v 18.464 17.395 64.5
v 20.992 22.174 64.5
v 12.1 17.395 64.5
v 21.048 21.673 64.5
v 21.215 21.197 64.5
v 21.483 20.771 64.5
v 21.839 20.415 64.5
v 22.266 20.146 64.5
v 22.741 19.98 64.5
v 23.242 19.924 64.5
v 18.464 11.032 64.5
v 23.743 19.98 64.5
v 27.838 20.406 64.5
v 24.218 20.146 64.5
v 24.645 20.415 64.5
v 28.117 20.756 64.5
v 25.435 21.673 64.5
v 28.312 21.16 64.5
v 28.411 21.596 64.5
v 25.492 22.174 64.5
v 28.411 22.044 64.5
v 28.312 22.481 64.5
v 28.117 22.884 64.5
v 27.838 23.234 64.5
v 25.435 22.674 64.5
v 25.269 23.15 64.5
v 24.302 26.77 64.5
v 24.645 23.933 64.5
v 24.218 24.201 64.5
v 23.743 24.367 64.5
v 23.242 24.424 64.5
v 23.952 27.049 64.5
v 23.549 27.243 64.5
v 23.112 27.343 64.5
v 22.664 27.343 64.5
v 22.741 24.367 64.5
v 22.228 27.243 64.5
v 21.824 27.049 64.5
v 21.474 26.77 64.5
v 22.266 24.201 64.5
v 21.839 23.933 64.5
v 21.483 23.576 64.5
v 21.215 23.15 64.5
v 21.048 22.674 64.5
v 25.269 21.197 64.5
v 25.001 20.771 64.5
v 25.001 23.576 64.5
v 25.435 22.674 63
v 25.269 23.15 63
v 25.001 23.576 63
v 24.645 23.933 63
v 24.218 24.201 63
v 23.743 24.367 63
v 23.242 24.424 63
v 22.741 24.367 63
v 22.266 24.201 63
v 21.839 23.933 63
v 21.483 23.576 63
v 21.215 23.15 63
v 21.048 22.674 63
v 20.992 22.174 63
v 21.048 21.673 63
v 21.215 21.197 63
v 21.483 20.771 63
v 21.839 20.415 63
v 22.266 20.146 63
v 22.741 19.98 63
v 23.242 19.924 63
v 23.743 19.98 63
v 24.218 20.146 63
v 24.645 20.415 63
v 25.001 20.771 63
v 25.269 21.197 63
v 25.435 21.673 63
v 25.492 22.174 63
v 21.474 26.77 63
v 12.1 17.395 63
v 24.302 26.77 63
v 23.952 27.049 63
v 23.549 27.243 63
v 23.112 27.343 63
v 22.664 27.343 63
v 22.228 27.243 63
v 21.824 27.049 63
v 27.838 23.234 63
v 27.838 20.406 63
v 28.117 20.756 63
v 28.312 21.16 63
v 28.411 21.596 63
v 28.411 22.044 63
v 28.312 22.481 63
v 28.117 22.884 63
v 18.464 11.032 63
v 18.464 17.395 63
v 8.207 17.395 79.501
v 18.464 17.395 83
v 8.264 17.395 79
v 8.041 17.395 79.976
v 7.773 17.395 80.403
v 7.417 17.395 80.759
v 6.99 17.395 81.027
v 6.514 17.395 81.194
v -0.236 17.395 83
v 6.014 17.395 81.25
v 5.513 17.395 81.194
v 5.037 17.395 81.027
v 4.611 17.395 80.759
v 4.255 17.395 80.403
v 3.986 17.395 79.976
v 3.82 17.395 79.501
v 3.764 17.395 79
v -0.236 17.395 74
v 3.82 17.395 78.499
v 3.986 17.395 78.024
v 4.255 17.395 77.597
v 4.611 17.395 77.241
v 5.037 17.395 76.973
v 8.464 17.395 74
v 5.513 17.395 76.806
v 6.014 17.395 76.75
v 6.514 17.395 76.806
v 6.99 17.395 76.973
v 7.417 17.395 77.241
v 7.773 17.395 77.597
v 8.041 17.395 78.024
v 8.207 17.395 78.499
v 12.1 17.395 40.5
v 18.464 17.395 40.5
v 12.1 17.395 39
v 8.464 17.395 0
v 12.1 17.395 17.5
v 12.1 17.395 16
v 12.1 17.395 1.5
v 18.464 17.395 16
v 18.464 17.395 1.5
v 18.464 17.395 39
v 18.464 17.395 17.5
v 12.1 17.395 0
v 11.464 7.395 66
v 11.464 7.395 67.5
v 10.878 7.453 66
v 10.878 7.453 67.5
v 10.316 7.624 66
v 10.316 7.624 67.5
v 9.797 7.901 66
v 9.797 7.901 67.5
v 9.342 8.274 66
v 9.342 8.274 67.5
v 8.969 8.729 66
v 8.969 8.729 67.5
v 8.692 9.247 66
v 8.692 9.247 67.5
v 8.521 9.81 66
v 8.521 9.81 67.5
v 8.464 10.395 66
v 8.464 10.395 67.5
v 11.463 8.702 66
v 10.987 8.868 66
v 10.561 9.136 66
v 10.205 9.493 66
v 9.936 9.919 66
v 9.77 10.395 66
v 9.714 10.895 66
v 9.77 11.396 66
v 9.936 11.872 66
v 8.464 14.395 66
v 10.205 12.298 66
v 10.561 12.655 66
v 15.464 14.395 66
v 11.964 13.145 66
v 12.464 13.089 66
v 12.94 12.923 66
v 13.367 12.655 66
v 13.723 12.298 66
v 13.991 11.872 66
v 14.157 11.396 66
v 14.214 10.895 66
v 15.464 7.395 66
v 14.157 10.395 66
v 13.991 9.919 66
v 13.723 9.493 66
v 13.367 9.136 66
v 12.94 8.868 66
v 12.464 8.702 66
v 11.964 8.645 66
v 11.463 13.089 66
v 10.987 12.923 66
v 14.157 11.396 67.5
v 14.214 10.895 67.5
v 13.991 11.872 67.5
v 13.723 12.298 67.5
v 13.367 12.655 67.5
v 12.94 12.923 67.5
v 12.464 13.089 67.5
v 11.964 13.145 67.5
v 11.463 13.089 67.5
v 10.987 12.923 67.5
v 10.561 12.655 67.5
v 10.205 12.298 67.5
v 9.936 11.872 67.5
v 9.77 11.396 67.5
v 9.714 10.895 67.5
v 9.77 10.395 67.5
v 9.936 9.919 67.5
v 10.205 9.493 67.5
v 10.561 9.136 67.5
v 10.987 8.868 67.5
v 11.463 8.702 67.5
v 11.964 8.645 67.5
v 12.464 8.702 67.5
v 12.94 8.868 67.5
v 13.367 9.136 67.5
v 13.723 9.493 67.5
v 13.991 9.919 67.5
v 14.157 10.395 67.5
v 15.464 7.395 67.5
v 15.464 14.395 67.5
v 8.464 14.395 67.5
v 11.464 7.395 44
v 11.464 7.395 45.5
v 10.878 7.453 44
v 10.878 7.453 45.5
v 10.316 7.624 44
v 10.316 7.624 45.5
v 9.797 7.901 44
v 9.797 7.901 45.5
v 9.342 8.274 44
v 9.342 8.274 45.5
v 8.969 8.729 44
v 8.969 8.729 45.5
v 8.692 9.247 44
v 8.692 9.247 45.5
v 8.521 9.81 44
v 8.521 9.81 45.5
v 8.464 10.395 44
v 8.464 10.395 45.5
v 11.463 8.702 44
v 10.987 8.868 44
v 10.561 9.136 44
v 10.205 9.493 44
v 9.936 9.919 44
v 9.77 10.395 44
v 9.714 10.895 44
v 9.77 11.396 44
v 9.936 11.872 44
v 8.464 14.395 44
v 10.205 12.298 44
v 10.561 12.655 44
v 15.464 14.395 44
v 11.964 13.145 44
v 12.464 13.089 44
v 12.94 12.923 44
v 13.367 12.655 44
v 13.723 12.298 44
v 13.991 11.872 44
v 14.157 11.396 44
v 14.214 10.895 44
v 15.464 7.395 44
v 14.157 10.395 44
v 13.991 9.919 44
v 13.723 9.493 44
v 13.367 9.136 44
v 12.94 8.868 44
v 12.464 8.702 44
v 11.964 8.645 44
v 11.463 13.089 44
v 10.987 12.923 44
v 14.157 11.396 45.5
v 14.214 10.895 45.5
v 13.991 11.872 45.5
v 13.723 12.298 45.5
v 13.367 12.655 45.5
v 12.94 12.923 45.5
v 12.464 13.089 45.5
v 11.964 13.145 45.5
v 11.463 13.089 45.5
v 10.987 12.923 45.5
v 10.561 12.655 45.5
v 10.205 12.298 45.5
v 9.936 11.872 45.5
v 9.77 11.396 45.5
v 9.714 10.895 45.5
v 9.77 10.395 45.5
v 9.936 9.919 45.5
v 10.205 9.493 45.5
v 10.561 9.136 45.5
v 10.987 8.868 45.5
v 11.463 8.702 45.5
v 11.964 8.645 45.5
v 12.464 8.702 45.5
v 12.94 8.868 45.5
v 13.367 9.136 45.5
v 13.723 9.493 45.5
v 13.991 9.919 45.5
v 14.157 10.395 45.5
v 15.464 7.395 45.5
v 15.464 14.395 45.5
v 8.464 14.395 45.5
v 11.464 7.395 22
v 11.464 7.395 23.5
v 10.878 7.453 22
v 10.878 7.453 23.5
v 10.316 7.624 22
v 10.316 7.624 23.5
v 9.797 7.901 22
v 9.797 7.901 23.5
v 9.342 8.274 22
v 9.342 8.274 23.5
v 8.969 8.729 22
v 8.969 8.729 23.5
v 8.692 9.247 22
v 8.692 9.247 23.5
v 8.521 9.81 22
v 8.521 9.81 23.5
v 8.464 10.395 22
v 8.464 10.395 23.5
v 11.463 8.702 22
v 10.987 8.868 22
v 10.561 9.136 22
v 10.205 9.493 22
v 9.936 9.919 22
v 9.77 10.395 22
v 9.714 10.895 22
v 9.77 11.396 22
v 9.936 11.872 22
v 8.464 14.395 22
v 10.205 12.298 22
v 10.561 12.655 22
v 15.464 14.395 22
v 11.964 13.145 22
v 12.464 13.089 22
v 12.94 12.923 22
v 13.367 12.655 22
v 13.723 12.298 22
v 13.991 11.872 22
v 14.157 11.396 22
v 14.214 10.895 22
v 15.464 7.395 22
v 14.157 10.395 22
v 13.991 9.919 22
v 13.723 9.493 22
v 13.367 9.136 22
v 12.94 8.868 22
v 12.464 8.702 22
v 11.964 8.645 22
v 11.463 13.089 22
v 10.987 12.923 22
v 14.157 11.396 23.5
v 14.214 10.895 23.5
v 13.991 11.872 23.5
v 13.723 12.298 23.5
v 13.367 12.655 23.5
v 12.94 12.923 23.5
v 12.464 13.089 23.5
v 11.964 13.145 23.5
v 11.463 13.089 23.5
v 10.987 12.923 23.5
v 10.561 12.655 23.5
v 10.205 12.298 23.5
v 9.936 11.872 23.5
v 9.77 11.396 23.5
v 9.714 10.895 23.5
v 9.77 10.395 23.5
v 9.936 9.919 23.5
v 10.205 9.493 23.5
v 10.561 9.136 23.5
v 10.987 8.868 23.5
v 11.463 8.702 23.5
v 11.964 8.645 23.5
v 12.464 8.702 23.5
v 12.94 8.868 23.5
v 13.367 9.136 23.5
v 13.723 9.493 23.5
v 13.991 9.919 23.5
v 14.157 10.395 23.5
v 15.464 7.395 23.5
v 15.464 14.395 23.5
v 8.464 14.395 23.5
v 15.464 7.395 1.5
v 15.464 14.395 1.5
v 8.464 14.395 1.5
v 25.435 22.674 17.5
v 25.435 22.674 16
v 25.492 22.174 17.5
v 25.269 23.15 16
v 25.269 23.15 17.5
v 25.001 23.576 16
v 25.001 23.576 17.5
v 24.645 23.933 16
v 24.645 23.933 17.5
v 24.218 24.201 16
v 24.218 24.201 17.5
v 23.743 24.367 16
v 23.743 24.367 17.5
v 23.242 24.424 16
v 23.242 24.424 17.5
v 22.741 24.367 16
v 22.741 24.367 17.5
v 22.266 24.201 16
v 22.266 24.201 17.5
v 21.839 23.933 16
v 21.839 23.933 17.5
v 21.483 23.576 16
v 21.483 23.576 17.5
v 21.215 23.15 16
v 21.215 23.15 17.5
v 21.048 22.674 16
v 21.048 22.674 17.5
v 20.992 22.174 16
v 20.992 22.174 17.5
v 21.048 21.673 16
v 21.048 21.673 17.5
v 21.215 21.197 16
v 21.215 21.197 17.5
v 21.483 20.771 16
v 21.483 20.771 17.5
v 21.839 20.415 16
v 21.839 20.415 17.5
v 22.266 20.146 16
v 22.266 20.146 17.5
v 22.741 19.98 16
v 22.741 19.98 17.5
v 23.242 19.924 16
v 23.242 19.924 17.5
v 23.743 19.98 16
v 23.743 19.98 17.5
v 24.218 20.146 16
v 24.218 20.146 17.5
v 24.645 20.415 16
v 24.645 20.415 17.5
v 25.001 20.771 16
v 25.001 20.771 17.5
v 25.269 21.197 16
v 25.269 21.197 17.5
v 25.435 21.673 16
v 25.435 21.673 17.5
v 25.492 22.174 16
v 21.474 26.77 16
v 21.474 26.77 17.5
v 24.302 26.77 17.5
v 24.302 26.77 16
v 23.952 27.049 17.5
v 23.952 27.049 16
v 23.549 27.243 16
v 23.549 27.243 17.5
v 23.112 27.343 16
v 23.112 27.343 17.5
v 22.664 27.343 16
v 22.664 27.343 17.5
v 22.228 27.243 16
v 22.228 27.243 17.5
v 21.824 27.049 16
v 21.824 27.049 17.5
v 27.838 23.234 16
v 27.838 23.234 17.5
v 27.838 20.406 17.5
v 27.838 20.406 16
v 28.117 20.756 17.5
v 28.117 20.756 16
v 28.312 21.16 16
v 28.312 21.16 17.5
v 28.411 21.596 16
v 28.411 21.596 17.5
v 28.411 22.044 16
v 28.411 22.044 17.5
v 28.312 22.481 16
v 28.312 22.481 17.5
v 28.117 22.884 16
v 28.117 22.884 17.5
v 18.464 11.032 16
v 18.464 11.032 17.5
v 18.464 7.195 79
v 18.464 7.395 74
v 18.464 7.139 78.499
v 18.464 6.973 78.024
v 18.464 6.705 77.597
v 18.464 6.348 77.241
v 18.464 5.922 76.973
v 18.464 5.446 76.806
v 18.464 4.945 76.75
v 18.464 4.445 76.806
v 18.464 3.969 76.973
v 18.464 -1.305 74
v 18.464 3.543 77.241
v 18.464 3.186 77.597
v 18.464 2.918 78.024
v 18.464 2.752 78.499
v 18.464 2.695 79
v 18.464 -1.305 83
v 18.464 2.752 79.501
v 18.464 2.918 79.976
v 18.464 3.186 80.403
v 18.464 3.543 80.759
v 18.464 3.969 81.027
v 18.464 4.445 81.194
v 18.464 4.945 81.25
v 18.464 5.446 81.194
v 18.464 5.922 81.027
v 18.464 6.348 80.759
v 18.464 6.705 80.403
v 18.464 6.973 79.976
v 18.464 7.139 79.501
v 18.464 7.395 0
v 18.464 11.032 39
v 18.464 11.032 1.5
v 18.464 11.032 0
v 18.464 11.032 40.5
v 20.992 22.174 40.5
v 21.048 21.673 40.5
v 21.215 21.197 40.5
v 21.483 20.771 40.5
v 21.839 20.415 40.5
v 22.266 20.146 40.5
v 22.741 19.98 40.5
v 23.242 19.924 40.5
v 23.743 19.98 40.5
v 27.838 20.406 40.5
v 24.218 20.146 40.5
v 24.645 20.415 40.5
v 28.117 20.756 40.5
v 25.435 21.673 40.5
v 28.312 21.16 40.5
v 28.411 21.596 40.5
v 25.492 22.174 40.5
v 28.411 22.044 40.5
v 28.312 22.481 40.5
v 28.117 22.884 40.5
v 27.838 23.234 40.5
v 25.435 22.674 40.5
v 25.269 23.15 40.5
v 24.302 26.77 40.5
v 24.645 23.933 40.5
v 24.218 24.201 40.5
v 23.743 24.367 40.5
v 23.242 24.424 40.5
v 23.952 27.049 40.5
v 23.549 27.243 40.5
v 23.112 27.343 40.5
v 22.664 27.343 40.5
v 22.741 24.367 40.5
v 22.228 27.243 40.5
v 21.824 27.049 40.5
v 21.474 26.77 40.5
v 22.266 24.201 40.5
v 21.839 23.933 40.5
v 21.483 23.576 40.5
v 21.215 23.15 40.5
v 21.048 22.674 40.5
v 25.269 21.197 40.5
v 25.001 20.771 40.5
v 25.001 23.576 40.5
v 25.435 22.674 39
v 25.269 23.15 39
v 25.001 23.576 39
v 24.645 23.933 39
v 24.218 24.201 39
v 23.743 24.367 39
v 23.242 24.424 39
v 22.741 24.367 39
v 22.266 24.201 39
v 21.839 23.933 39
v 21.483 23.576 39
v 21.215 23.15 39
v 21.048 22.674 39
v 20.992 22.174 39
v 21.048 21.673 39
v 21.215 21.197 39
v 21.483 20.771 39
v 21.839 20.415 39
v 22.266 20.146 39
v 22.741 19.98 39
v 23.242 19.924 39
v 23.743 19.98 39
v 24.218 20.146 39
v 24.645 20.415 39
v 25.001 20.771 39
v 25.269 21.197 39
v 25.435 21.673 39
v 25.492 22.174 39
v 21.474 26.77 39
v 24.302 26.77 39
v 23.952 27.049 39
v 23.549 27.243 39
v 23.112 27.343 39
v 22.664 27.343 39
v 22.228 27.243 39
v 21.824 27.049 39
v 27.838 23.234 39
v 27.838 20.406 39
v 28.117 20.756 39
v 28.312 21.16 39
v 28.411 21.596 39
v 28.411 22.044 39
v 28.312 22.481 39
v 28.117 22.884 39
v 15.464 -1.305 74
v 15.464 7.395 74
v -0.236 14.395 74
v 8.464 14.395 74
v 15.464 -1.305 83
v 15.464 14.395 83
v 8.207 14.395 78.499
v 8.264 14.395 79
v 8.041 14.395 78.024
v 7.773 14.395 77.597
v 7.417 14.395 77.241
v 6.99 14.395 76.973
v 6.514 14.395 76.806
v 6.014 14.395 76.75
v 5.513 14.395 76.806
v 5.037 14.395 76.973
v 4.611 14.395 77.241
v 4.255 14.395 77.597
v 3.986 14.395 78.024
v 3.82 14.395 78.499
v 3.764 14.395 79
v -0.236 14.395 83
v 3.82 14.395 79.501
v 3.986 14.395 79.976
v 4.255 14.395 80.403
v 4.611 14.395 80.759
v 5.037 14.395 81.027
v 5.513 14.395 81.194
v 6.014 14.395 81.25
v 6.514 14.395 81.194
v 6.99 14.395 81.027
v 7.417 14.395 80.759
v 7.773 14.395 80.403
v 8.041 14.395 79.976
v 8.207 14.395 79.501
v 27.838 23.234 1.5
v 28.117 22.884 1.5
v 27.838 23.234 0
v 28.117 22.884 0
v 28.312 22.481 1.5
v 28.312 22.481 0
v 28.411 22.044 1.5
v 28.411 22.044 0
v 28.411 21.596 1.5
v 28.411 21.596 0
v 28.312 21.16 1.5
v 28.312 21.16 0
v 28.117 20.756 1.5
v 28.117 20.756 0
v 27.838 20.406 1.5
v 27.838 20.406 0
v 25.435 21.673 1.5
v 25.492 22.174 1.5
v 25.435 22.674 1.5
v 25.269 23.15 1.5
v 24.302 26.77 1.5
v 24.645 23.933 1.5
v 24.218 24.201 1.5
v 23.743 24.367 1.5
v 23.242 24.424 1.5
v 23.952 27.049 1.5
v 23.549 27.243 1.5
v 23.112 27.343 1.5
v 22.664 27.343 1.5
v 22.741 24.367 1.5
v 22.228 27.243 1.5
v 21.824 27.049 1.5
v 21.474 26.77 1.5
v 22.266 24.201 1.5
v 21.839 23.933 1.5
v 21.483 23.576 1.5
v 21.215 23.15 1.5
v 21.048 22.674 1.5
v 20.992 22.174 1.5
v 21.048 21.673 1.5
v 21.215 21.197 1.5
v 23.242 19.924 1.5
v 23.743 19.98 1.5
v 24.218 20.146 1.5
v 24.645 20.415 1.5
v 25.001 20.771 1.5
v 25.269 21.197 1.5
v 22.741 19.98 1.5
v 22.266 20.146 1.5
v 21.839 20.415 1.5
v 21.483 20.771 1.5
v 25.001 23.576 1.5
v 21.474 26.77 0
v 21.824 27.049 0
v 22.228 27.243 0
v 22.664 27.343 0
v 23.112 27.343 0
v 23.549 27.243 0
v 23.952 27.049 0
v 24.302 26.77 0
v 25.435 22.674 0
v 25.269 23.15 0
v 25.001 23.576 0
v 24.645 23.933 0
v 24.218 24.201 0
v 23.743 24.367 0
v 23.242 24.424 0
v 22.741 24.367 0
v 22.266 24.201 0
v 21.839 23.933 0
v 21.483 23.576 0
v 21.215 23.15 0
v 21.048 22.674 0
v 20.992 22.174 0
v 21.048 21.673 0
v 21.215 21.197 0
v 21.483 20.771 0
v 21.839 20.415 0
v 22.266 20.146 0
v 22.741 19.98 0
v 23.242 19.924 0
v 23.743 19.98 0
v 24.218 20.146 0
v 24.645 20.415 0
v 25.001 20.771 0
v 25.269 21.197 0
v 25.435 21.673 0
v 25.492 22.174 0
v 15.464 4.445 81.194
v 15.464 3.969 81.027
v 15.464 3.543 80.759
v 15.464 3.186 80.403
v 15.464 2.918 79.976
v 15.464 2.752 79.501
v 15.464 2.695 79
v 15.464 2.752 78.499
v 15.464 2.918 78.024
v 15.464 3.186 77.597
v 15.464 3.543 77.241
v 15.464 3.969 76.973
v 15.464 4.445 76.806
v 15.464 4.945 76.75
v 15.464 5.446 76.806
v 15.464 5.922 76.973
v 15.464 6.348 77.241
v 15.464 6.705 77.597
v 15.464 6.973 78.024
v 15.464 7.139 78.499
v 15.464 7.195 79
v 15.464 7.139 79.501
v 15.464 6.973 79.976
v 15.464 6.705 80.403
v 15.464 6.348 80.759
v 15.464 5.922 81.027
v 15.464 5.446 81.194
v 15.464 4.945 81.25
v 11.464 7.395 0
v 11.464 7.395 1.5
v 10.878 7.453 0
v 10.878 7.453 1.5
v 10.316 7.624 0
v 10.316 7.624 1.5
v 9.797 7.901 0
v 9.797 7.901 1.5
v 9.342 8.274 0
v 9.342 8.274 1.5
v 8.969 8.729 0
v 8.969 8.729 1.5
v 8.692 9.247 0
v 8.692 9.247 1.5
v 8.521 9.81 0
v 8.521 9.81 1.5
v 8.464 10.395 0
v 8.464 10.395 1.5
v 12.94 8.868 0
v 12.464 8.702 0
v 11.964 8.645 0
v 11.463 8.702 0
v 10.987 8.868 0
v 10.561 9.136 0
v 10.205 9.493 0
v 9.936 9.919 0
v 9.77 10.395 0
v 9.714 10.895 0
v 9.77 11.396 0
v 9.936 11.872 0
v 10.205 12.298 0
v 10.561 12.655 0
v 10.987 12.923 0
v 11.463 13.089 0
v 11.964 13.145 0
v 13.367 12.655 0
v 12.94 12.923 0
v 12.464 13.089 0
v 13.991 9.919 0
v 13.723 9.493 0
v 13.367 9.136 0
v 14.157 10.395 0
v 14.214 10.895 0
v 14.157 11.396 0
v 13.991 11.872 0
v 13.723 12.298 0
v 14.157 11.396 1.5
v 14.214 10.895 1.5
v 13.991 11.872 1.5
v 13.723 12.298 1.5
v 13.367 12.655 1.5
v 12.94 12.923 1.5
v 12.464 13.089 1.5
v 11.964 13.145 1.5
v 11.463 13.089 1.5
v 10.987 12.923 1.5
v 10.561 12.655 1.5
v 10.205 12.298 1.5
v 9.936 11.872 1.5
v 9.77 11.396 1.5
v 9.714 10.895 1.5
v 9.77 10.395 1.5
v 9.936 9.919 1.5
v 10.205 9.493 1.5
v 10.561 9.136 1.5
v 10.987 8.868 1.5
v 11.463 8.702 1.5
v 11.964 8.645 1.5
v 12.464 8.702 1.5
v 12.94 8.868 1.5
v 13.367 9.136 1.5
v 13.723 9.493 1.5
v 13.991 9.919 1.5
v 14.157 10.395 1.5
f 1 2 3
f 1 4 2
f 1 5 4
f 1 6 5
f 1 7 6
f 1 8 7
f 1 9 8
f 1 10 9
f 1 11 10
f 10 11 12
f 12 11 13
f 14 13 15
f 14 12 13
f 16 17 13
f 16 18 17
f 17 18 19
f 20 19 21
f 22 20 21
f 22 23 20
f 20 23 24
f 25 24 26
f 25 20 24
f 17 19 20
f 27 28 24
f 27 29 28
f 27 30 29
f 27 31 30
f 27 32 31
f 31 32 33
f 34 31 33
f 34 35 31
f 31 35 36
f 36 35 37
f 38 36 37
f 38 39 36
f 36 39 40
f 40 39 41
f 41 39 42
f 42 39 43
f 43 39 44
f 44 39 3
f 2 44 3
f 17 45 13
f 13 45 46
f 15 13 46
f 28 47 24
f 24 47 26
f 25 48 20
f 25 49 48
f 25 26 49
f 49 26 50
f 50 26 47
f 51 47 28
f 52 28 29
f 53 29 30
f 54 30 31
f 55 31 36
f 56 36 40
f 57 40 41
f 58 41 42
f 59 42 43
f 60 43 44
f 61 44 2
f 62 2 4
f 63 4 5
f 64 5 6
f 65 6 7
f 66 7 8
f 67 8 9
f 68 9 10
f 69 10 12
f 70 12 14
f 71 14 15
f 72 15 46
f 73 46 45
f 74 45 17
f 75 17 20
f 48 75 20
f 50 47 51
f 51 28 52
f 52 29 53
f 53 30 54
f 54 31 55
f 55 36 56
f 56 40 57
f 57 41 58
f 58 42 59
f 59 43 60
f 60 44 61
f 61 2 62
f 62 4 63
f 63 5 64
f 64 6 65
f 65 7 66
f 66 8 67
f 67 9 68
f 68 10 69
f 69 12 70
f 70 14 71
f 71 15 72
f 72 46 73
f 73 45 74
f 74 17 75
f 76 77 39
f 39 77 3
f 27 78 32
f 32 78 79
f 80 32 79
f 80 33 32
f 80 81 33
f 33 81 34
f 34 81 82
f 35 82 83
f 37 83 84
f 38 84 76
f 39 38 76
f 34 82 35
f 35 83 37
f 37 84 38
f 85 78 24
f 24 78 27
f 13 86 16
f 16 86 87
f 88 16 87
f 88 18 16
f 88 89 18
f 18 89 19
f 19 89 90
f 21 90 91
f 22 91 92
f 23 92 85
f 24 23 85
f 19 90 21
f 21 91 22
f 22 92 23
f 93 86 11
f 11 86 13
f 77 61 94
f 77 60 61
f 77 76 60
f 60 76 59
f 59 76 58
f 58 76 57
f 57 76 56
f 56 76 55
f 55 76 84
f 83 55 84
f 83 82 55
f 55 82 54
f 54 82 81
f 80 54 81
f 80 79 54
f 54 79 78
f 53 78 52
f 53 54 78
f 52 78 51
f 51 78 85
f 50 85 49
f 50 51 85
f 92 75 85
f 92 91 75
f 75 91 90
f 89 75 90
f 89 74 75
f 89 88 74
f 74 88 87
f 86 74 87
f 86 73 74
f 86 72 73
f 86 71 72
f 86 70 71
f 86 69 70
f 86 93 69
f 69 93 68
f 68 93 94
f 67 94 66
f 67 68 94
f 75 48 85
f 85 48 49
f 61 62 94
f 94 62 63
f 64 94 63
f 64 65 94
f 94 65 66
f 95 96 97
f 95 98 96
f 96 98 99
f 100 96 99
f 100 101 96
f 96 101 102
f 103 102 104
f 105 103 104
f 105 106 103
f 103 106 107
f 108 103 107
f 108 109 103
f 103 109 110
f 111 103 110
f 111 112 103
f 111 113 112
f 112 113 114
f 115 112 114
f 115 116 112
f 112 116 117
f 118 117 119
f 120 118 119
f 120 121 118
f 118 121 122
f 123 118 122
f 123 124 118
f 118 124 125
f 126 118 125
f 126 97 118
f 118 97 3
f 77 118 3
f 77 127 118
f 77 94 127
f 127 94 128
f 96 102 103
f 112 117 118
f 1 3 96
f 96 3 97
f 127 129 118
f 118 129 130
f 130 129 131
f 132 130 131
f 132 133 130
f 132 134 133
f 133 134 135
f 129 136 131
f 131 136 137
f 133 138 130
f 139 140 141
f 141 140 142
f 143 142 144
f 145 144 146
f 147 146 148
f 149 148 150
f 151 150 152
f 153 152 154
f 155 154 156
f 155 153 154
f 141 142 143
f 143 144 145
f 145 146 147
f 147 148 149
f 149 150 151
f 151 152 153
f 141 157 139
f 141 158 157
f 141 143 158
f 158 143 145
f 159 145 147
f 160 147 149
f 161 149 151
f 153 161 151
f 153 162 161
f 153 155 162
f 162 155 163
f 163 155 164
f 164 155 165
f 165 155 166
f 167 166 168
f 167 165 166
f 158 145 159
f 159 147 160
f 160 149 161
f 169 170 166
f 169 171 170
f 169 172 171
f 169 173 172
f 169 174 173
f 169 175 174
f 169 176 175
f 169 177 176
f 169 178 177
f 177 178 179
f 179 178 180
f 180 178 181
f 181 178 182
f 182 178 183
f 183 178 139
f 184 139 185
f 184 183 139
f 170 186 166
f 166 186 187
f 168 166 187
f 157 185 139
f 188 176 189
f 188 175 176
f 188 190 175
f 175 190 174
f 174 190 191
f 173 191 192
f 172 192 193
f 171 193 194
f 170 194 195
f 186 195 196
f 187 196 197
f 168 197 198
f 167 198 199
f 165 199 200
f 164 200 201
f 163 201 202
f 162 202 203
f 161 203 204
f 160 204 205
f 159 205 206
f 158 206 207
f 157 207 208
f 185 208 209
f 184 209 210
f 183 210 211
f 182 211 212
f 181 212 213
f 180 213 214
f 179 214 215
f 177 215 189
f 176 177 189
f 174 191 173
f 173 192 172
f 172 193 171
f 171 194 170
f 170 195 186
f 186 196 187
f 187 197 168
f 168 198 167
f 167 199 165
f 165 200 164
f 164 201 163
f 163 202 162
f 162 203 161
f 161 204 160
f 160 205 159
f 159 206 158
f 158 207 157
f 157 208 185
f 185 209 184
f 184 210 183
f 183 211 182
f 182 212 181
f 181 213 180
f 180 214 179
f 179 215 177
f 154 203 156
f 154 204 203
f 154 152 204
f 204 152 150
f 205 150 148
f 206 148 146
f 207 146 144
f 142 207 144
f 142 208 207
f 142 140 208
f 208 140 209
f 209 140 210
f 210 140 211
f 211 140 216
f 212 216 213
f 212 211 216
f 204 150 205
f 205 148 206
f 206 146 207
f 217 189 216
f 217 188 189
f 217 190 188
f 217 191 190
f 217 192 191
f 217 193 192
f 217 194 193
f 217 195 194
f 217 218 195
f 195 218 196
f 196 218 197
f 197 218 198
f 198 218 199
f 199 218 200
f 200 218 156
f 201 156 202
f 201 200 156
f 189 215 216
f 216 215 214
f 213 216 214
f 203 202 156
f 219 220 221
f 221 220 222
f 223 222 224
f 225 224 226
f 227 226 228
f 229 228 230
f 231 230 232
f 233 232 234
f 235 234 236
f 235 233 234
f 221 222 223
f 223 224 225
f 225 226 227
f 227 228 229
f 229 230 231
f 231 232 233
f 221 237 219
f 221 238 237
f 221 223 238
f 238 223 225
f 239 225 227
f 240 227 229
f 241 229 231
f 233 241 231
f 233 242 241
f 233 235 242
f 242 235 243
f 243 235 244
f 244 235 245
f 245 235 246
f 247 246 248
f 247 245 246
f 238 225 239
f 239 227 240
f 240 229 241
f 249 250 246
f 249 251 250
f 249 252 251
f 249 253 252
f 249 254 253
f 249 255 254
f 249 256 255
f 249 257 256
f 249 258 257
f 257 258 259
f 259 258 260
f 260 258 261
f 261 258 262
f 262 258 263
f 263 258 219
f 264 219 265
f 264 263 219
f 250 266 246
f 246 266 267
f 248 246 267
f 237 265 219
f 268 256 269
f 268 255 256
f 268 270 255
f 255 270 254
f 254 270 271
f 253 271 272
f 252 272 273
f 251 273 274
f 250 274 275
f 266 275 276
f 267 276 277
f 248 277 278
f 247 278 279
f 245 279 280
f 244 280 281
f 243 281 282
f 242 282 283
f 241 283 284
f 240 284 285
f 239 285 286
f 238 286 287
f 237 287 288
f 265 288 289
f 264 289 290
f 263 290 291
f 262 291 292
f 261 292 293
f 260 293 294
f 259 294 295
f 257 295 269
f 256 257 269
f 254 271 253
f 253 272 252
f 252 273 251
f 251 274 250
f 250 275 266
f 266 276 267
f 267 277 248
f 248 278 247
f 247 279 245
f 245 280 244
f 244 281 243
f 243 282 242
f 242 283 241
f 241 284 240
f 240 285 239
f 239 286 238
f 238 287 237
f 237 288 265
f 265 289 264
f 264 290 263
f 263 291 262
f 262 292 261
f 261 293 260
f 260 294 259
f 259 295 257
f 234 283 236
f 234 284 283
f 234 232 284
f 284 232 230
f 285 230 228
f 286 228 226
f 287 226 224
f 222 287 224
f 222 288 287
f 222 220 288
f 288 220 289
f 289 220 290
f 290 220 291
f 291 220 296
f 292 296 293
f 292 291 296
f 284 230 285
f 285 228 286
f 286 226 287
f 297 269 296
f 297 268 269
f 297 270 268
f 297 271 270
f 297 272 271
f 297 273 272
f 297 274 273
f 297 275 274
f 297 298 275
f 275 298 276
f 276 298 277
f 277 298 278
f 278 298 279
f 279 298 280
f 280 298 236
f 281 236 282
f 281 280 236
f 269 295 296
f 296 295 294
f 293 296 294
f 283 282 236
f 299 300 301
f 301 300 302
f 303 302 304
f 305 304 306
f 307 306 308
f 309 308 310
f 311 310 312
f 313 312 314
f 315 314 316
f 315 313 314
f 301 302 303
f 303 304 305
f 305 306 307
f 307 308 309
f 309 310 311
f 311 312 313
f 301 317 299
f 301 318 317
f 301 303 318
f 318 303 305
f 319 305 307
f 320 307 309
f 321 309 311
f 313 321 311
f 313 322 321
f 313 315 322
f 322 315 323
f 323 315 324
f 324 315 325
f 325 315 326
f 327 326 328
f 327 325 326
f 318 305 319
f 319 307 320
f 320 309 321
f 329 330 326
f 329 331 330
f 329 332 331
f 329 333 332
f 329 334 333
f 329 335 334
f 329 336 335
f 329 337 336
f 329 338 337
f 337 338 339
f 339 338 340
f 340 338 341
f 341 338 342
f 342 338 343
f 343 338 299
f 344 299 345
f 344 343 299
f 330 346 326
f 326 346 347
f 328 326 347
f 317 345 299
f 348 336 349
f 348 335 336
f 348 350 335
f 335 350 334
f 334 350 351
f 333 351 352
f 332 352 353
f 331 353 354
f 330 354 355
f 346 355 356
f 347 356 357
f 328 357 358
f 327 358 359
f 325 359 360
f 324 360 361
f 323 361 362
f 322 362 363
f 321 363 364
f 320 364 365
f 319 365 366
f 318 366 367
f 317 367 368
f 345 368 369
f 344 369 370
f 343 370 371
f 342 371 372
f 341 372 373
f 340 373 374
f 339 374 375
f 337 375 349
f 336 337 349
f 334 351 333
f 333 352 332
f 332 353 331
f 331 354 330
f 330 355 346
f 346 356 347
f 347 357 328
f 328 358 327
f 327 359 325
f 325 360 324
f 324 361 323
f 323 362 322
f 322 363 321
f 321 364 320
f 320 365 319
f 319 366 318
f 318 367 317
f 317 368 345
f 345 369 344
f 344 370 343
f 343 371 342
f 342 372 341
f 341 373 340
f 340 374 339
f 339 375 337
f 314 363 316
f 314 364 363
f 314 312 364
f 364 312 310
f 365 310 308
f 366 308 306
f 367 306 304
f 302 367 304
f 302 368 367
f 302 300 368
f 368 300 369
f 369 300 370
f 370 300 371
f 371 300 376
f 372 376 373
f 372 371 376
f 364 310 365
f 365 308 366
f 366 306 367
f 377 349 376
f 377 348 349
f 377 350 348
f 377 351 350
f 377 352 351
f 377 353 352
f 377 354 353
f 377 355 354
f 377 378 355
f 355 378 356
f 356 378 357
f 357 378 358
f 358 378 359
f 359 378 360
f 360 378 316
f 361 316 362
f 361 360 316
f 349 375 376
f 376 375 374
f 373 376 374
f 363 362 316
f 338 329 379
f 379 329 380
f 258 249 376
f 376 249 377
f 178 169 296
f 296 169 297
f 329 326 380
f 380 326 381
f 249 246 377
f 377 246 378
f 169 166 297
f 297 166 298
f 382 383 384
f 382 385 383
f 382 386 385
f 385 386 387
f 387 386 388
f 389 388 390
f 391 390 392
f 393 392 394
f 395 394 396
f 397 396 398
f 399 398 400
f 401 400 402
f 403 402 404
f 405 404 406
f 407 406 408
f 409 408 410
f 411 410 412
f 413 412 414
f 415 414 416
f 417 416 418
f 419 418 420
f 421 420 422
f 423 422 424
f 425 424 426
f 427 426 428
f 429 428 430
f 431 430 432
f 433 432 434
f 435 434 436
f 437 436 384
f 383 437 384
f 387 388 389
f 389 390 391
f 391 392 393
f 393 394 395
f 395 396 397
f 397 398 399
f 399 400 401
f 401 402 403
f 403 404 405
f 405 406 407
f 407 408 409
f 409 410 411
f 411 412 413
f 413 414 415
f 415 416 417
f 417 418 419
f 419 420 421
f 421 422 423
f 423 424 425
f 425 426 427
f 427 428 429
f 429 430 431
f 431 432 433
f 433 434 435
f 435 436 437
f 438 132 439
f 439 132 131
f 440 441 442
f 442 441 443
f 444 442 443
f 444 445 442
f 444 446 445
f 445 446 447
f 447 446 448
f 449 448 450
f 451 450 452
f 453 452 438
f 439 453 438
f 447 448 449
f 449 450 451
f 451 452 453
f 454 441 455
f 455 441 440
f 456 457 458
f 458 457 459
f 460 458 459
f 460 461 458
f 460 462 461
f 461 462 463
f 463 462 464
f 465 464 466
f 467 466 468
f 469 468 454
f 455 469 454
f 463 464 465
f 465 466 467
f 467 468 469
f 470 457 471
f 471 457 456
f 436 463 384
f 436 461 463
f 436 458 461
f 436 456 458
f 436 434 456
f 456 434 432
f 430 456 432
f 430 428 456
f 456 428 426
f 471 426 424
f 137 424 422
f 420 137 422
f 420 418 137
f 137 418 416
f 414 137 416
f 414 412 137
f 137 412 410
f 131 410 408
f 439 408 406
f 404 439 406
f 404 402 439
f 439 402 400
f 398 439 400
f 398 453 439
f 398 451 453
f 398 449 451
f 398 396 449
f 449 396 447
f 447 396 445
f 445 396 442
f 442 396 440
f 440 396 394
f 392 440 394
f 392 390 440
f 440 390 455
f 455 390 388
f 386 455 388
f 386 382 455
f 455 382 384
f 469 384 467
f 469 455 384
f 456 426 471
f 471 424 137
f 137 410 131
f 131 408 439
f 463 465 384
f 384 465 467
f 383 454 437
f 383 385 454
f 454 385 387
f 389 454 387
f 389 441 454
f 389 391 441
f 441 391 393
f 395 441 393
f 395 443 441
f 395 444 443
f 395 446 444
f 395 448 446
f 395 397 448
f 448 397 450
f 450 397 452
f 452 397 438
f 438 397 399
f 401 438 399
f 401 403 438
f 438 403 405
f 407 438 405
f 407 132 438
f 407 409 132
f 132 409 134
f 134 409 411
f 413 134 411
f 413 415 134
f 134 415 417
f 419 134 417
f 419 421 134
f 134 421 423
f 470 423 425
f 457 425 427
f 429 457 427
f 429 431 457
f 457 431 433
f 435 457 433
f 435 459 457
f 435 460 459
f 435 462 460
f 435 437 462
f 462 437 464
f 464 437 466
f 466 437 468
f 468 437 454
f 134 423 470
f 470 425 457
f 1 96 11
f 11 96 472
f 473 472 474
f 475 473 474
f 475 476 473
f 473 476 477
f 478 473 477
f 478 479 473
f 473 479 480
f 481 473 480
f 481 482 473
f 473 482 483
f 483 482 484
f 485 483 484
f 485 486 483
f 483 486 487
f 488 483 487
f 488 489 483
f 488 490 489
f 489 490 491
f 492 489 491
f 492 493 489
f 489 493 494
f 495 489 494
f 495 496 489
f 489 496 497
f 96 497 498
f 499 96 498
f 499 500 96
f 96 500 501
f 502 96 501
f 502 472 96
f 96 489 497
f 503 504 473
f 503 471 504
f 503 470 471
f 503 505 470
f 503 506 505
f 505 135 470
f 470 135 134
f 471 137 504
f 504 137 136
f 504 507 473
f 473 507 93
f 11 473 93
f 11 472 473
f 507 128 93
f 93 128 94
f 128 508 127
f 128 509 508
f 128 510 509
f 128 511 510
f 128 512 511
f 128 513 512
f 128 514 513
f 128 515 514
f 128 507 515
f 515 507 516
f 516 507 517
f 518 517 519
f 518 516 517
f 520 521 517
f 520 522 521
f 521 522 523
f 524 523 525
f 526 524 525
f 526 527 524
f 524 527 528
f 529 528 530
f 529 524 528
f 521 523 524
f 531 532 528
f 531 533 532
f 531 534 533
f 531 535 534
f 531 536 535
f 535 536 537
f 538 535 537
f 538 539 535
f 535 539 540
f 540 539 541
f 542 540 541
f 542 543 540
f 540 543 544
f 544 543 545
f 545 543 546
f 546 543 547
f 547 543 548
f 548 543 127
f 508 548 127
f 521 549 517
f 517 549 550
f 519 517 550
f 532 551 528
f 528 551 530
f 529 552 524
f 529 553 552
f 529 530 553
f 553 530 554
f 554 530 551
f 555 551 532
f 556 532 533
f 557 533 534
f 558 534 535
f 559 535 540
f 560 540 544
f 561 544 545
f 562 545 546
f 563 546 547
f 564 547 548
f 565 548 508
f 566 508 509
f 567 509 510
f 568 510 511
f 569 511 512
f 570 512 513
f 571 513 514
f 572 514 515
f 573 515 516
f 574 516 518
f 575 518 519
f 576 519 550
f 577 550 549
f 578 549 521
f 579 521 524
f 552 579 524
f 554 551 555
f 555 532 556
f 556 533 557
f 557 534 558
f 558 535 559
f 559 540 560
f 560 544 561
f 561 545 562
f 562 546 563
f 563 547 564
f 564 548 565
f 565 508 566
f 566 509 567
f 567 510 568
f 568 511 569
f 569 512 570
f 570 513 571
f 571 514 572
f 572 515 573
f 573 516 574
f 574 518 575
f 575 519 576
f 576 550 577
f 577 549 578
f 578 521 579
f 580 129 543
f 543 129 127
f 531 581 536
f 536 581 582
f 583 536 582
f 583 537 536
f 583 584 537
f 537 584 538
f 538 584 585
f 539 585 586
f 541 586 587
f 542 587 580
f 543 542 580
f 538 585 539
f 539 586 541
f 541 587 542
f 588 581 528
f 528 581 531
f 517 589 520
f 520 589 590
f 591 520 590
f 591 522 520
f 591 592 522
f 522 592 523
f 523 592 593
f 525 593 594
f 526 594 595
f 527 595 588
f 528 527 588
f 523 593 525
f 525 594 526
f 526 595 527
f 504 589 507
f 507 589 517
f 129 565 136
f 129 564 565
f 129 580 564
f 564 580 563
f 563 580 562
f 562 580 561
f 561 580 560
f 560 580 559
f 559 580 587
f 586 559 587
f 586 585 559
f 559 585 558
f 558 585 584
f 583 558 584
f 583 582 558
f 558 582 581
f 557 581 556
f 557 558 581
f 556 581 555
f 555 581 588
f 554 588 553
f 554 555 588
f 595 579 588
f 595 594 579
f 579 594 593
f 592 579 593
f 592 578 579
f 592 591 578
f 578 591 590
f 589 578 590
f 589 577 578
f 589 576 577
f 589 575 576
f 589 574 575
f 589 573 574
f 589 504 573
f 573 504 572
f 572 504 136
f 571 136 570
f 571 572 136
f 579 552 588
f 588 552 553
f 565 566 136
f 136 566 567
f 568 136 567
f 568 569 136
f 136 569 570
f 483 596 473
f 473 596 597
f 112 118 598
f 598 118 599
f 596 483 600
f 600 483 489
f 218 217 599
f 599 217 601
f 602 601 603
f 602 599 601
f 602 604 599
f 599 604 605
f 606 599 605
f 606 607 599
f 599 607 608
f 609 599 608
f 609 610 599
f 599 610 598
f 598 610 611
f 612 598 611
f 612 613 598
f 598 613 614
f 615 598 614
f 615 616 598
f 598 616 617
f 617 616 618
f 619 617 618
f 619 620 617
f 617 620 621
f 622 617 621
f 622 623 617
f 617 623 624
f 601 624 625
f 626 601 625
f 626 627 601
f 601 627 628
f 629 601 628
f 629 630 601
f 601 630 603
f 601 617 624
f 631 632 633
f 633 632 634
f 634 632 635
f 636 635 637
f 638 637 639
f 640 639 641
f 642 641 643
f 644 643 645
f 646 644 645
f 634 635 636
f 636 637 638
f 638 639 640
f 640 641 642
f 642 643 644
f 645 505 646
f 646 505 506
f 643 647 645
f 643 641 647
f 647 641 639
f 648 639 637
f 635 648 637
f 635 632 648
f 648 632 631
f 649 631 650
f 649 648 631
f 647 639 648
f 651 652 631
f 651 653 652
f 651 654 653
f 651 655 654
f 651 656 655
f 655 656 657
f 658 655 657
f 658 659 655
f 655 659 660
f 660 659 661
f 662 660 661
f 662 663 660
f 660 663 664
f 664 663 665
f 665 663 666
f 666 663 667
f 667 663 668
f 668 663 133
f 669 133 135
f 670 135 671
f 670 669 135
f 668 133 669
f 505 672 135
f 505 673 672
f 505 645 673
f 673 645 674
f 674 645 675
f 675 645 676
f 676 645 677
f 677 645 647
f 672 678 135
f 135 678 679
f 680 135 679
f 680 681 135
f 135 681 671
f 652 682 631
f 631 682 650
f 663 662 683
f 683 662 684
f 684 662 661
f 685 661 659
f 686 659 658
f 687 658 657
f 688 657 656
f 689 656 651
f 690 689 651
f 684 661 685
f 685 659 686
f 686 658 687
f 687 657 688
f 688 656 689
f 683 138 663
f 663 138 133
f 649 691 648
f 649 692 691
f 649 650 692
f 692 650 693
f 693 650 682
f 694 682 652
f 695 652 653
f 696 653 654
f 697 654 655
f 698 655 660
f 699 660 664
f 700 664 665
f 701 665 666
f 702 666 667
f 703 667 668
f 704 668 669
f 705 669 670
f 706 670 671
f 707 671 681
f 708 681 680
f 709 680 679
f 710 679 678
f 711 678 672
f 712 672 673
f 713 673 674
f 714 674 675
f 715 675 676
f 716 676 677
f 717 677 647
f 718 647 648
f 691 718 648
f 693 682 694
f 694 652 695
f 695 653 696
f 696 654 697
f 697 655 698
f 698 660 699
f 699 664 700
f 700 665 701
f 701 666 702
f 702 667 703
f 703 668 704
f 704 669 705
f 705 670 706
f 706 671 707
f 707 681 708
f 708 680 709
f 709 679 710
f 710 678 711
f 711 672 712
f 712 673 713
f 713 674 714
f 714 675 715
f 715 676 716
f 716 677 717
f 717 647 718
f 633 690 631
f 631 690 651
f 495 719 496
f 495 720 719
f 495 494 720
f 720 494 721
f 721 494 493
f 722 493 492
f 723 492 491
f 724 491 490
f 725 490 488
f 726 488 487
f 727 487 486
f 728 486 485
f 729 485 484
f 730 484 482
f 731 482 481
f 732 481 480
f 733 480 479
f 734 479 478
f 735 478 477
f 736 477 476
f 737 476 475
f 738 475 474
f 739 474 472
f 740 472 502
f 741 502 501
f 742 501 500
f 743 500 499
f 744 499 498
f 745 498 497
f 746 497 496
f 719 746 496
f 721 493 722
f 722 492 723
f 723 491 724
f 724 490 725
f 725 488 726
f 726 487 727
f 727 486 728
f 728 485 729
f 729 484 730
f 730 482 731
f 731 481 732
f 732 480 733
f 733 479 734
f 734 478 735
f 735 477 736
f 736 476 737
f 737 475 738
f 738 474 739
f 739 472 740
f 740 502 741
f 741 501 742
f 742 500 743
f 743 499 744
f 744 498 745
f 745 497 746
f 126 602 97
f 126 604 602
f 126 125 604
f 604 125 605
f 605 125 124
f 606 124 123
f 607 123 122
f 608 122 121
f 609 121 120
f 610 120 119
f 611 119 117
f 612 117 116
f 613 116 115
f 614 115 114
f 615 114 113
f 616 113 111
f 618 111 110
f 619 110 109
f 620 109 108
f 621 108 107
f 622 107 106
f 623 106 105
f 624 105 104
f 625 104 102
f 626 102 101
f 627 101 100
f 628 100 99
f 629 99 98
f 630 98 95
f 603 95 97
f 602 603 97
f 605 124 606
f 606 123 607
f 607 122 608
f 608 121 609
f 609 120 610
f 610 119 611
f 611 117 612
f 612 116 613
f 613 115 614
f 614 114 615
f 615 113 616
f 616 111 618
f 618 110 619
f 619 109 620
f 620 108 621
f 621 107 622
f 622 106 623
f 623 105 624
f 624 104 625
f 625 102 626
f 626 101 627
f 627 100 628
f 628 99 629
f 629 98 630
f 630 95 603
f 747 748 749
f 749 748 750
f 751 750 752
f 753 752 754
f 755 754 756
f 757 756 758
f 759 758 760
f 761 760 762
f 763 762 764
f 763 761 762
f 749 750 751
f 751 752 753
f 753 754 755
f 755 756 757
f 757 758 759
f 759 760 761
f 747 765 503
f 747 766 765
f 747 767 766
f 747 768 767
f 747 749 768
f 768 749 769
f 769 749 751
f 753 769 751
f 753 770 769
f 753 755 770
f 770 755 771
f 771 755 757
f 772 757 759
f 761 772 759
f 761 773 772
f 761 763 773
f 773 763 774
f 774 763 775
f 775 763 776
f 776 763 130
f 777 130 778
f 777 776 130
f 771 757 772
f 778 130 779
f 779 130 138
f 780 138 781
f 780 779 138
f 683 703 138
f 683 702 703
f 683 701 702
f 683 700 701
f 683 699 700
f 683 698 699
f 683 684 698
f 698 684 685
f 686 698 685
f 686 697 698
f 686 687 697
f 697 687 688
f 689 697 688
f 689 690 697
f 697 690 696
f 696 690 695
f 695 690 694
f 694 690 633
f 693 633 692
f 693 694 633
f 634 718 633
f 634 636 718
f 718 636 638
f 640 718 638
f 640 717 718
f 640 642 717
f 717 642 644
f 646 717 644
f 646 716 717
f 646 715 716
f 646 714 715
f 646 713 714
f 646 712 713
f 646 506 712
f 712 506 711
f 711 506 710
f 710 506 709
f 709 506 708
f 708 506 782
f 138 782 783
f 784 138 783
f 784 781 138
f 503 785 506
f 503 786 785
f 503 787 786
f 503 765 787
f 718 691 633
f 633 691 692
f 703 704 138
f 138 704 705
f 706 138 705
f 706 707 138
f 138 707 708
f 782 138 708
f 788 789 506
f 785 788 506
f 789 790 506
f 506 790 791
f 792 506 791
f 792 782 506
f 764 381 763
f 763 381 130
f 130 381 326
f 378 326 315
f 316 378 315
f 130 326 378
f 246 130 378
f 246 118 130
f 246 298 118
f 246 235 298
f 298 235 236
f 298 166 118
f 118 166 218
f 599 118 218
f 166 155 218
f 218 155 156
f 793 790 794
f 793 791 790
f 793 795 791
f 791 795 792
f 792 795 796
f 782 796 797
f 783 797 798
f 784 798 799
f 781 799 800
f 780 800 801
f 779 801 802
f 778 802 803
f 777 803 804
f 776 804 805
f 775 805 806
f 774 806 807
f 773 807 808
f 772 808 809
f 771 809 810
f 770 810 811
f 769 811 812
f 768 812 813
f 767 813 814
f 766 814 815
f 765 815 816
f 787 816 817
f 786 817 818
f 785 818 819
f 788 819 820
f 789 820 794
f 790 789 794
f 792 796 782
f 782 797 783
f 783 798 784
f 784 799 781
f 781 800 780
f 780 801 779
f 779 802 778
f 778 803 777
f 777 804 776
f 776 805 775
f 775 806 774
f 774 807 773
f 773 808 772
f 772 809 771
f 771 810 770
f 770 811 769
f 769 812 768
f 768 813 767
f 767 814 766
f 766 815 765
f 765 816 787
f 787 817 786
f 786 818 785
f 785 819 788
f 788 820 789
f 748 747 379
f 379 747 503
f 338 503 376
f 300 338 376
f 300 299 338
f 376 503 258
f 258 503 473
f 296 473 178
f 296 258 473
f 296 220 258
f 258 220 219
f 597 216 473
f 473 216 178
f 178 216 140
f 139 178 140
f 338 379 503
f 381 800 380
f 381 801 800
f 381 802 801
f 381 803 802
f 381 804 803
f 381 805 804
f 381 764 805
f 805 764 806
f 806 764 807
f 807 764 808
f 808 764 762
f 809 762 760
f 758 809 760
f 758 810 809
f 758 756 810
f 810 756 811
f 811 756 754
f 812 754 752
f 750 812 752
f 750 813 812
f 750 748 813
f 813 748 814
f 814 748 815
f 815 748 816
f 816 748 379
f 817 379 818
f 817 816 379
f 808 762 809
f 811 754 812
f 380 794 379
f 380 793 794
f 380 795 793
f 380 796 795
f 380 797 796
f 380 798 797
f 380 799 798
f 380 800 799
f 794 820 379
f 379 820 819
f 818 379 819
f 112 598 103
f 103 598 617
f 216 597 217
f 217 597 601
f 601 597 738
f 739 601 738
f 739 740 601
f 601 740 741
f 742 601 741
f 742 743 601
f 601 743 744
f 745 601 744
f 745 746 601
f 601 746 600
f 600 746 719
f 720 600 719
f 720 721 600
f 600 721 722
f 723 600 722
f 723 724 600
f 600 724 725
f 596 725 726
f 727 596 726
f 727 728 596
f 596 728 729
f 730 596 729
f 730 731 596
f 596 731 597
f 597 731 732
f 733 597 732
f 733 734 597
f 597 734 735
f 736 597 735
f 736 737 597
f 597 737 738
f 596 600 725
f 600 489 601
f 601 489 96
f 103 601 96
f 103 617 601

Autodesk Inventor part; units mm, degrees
sketch "Sketch1" plane through (0, 0, 0) normal (0, 0, 1) x (1, 0, 0)
  line L0 (-0.2363, 14.3955) -> (15.4637, 14.3955)
  line L1 (15.4637, 14.3955) -> (15.4637, 17.3955)
  line L2 (15.4637, 17.3955) -> (-0.2363, 17.3955)
  line L3 (-0.2363, 17.3955) -> (-0.2363, 14.3955)
  line L4 (15.4637, 14.3955) -> (18.4637, 14.3955)
  line L5 (18.4637, 14.3955) -> (18.4637, -1.3045)
  line L6 (18.4637, -1.3045) -> (15.4637, -1.3045)
  line L7 (15.4637, -1.3045) -> (15.4637, 14.3955)
  line L8 (15.4637, 14.3955) -> (18.4637, 14.3955)
  line L9 (18.4637, 14.3955) -> (18.4637, 17.3955)
  line L10 (18.4637, 17.3955) -> (15.4637, 17.3955)
  line L11 (15.4637, 17.3955) -> (15.4637, 14.3955)
  circle A0 centre (11.9637, 10.8955) radius 2.25
  line L12 (15.4637, 14.3955) -> (8.4637, 14.3955)
  line L13 (8.4637, 14.3955) -> (8.4637, 7.3955)
  line L14 (8.4637, 7.3955) -> (15.4637, 7.3955)
  line L15 (15.4637, 7.3955) -> (15.4637, 14.3955)
  point P0 (0, 0)
  point P1 (11.9637, 7.3955)
  point P2 (8.4637, 10.8955)
  dimension "d2" = 3
  dimension "d3" = 3
  dimension "d9" = 4.5
  dimension "d46" = 7
  dimension "d47" = 7
  dimension "d48" = 15.7
  dimension "d49" = 15.7
extrude "Extrusion1" add sketch "Sketch1" along normal blind 83 contours L3 L2 L1 L0 | L1 L10 L9 L4 | L4 L5 L6 L7
extrude "Extrusion2" add sketch "Sketch1" along normal blind 1.5 contours L0 L7 L14 L13
fillet "Fillet1" radius 3 1 edges at (8.4637, 7.3955, 0.75)
sketch "Sketch3" plane through (-0.2363, 14.3955, 83) normal (0, -1, 0) x (1, 0, 0)
  line L0 (15.7, 0) -> (15.7, -81.5) projected
  line L1 (0, 0) -> (15.7, 0) projected
  line L2 (0, -83) -> (0, 0) projected
  circle A0 centre (6.25, -4) radius 2.25
  line L3 (18.7, -83) -> (0, -83) projected
  line L4 (0, 0) -> (15.7, 0) projected
  line L5 (18.7, 0) -> (0, 0) projected
  line L6 (12.5, 0) -> (12.5, -83) construction
  line L7 (0, -83) -> (0, 0) projected
  line L8 (12.5, 0) -> (0, 0)
  line L9 (0, -83) -> (8.7, -83) projected
  line L10 (8.7, -81.5) -> (15.7, -81.5) projected
  line L11 (8.7, -83) -> (8.7, -81.5) projected
  point P0 (0.2363, -83)
  point P1 (1.7, -20)
  point P2 (6.25, 0)
  dimension "d12" = 4.5
  dimension "d13" = 4
  dimension "d24" = 12.5
sketch "Sketch4" plane through (15.4637, -1.3045, 83) normal (-1, 0, 0) x (0, 0, 1)
  line L0 (-83, 0) -> (0, 0) projected
  line L1 (0, 15.7) -> (0, 0) projected
  line L2 (0, 15.7) -> (-81.5, 15.7) projected
  circle A0 centre (-4, 6.25) radius 2.25
  line L3 (0, 15.7) -> (0, 0) projected
  line L4 (-83, 0) -> (-83, 18.7) projected
  line L5 (0, 15.7) -> (-81.5, 15.7) projected
  line L6 (0, 12.5) -> (-83, 12.5) construction
  line L7 (0, 12.5) -> (0, 0)
  line L8 (-83, 8.7) -> (-83, 0) projected
  line L9 (-81.5, 15.7) -> (-81.5, 8.7) projected
  line L10 (-81.5, 8.7) -> (-83, 8.7) projected
  point P0 (-83, 1.3045)
  point P1 (-20, 1.7)
  point P2 (0, 6.25)
  point P3 (-83, 15.7)
  dimension "d14" = 4.5
  dimension "d15" = 4
  dimension "d25" = 12.5
extrude "Extrusion4" cut sketch "Sketch3" against normal blind 5 contours A0
extrude "Extrusion5" cut sketch "Sketch4" against normal blind 5 contours A0
sketch "Sketch5" plane through (0, 0, 0) normal (0, 0, 1) x (1, 0, 0)
  line L0 (29.2522, 21.8201) -> (22.8883, 28.184)
  line L1 (22.8883, 28.184) -> (12.2817, 17.5774)
  line L2 (12.2817, 17.5774) -> (18.6456, 11.2135)
  line L3 (18.6456, 11.2135) -> (29.2522, 21.8201)
  line L4 (26.0703, 25.0021) -> (15.4637, 14.3955) construction
  line L5 (23.9489, 16.5168) -> (17.585, 22.8807) construction
  line L6 (15.4637, -1.3045) -> (15.4637, 14.3955) projected
  line L7 (15.4637, 17.3955) -> (-0.2363, 17.3955) projected
  line L8 (18.4637, 14.3955) -> (18.4637, -1.3045) projected
  line L9 (18.4637, 14.3955) -> (18.4637, 17.3955) projected
  line L10 (18.4637, 17.3955) -> (15.4637, 17.3955) projected
  circle A0 centre (23.2418, 22.1736) radius 2.25
  line L11 (18.0923, 10.6601) -> (18.6456, 11.2135)
  line L12 (18.6456, 11.2135) -> (12.2817, 17.5774)
  line L13 (12.2817, 17.5774) -> (11.7283, 17.0241)
  line L14 (11.7283, 17.0241) -> (18.0923, 10.6601)
  point P0 (0, 0)
  dimension "d29" = 9
  dimension "d30" = 4.5
  dimension "d31" = 4
  dimension "d32" = 15
  dimension "d56" = 9
extrude "Extrusion6" add sketch "Sketch5" along normal blind 1.5
fillet "Fillet2" radius 2 2 edges at (22.8883, 28.184, 0.75) (29.2522, 21.8201, 0.75)
ref_plane "Work Plane2" through (0, 0, 74) normal (0, 0, 1) x (1, 0, 0)
sketch "Sketch6" plane through (0, 0, 74) normal (0, 0, 1) x (1, 0, 0)
  line L0 (18.4637, -1.3045) -> (18.4637, 17.3955)
  line L1 (18.4637, 17.3955) -> (-0.2363, 17.3955)
  line L2 (-0.2363, 17.3955) -> (-0.2363, 14.3955)
  line L3 (15.4637, -1.3045) -> (18.4637, -1.3045)
  line L4 (-0.2363, 17.3955) -> (-0.2363, 14.3955) projected
  line L5 (-0.2363, 17.3955) -> (8.4637, 17.3955)
  line L6 (8.4637, 17.3955) -> (8.4637, 14.3955)
  line L7 (8.4637, 14.3955) -> (-0.2363, 14.3955)
  line L8 (-0.2363, 14.3955) -> (-0.2363, 17.3955)
  line L9 (18.4637, -1.3045) -> (15.4637, -1.3045)
  line L10 (15.4637, -1.3045) -> (15.4637, 7.3955)
  line L11 (15.4637, 7.3955) -> (18.4637, 7.3955)
  line L12 (18.4637, 7.3955) -> (18.4637, -1.3045)
  point P0 (0, 0)
  dimension "d45" = 8.7
  dimension "d50" = 7
  dimension "d51" = 7
extrude "Extrusion7" cut sketch "Sketch6" against normal blind 74
ref_plane "Work Plane3" through (0, 0, 43) normal (0, 0, 1) x (1, 0, 0)
ref_plane "Work Plane5" through (0, 0, 39) normal (0, 0, 1) x (1, 0, 0)
sketch "Sketch9" plane through (0, 0, 39) normal (0, 0, 1) x (1, 0, 0)
  line L0 (18.4637, 7.3955) -> (11.4637, 7.3955) projected
  arc A0 (8.4637, 10.3955) -> (11.4637, 7.3955) centre (11.4637, 10.3955) ccw projected
  line L1 (8.4637, 10.3955) -> (8.4637, 17.3955) projected
  line L2 (12.0997, 17.3955) -> (8.4637, 17.3955) projected
  line L3 (21.4741, 26.7698) -> (12.0997, 17.3955) projected
  arc A1 (24.3025, 26.7698) -> (21.4741, 26.7698) centre (22.8883, 25.3556) ccw projected
  line L4 (27.838, 23.2343) -> (24.3025, 26.7698) projected
  arc A2 (27.838, 20.4059) -> (27.838, 23.2343) centre (26.4238, 21.8201) ccw projected
  line L5 (18.4637, 11.0315) -> (27.838, 20.4059) projected
  line L6 (18.4637, 7.3955) -> (18.4637, 11.0315) projected
  circle A3 centre (23.2418, 22.1736) radius 2.25 projected
  circle A4 centre (11.9637, 10.8955) radius 2.25 projected
  line L7 (12.0997, 17.3955) -> (16.4707, 15.4026)
  line L8 (16.4707, 15.4026) -> (18.4637, 11.0315)
  point P0 (0, 0)
extrude "Extrusion9" add sketch "Sketch9" along normal blind 1.5 contours L8 L7 L3 A1 L4 A2 L5
ref_plane "Work Plane6" through (0, 0, 16) normal (0, 0, 1) x (1, 0, 0)
sketch "Sketch10" plane through (0, 0, 16) normal (0, 0, 1) x (1, 0, 0)
  line L0 (18.4637, 7.3955) -> (11.4637, 7.3955) projected
  arc A0 (8.4637, 10.3955) -> (11.4637, 7.3955) centre (11.4637, 10.3955) ccw projected
  line L1 (8.4637, 10.3955) -> (8.4637, 17.3955) projected
  line L2 (12.0997, 17.3955) -> (8.4637, 17.3955) projected
  line L3 (21.4741, 26.7698) -> (12.0997, 17.3955) projected
  arc A1 (24.3025, 26.7698) -> (21.4741, 26.7698) centre (22.8883, 25.3556) ccw projected
  line L4 (27.838, 23.2343) -> (24.3025, 26.7698) projected
  arc A2 (27.838, 20.4059) -> (27.838, 23.2343) centre (26.4238, 21.8201) ccw projected
  line L5 (18.4637, 11.0315) -> (27.838, 20.4059) projected
  line L6 (18.4637, 7.3955) -> (18.4637, 11.0315) projected
  circle A3 centre (23.2418, 22.1736) radius 2.25 projected
  circle A4 centre (11.9637, 10.8955) radius 2.25 projected
  line L7 (12.0997, 17.3955) -> (18.4637, 17.3955) projected
  line L8 (12.0997, 17.3955) -> (16.7869, 15.7187)
  line L9 (18.4637, 17.3955) -> (18.4637, 11.0315) projected
  line L10 (16.7869, 15.7187) -> (18.4637, 11.0315)
  point P0 (0, 0)
extrude "Extrusion10" add sketch "Sketch10" along normal blind 1.5 contours L9 L7 L3 A1 L4 A2 L5
pattern_linear "Rectangular Pattern2" count 4 spacing 22 along (0, 0, 1) of "Extrusion2", "Fillet1"
ref_plane "Work Plane7" through (0, 0, 63) normal (0, 0, 1) x (1, 0, 0)
sketch "Sketch11" plane through (0, 0, 63) normal (0, 0, 1) x (1, 0, 0)
  arc A0 (27.838, 20.4059) -> (27.838, 23.2343) centre (26.4238, 21.8201) ccw projected
  line L0 (18.4637, 7.3955) -> (11.4637, 7.3955) projected
  arc A1 (8.4637, 10.3955) -> (11.4637, 7.3955) centre (11.4637, 10.3955) ccw projected
  line L1 (8.4637, 10.3955) -> (8.4637, 17.3955) projected
  line L2 (12.0997, 17.3955) -> (8.4637, 17.3955) projected
  line L3 (21.4741, 26.7698) -> (12.0997, 17.3955) projected
  arc A2 (24.3025, 26.7698) -> (21.4741, 26.7698) centre (22.8883, 25.3556) ccw projected
  line L4 (27.838, 23.2343) -> (24.3025, 26.7698) projected
  arc A3 (27.838, 20.4059) -> (27.838, 23.2343) centre (26.4238, 21.8201) ccw projected
  line L5 (18.4637, 11.0315) -> (27.838, 20.4059) projected
  line L6 (18.4637, 7.3955) -> (18.4637, 11.0315) projected
  circle A4 centre (23.2418, 22.1736) radius 2.25 projected
  circle A5 centre (11.9637, 10.8955) radius 2.25 projected
  line L7 (18.4637, 11.0315) -> (16.7869, 15.7187)
  line L8 (16.7869, 15.7187) -> (12.0997, 17.3955)
  point P0 (0, 0)
extrude "Extrusion11" add sketch "Sketch11" along normal blind 1.5 contours L5 L7 L8 L3 A2 L4 A0
properties part number "VerticalConnector"
